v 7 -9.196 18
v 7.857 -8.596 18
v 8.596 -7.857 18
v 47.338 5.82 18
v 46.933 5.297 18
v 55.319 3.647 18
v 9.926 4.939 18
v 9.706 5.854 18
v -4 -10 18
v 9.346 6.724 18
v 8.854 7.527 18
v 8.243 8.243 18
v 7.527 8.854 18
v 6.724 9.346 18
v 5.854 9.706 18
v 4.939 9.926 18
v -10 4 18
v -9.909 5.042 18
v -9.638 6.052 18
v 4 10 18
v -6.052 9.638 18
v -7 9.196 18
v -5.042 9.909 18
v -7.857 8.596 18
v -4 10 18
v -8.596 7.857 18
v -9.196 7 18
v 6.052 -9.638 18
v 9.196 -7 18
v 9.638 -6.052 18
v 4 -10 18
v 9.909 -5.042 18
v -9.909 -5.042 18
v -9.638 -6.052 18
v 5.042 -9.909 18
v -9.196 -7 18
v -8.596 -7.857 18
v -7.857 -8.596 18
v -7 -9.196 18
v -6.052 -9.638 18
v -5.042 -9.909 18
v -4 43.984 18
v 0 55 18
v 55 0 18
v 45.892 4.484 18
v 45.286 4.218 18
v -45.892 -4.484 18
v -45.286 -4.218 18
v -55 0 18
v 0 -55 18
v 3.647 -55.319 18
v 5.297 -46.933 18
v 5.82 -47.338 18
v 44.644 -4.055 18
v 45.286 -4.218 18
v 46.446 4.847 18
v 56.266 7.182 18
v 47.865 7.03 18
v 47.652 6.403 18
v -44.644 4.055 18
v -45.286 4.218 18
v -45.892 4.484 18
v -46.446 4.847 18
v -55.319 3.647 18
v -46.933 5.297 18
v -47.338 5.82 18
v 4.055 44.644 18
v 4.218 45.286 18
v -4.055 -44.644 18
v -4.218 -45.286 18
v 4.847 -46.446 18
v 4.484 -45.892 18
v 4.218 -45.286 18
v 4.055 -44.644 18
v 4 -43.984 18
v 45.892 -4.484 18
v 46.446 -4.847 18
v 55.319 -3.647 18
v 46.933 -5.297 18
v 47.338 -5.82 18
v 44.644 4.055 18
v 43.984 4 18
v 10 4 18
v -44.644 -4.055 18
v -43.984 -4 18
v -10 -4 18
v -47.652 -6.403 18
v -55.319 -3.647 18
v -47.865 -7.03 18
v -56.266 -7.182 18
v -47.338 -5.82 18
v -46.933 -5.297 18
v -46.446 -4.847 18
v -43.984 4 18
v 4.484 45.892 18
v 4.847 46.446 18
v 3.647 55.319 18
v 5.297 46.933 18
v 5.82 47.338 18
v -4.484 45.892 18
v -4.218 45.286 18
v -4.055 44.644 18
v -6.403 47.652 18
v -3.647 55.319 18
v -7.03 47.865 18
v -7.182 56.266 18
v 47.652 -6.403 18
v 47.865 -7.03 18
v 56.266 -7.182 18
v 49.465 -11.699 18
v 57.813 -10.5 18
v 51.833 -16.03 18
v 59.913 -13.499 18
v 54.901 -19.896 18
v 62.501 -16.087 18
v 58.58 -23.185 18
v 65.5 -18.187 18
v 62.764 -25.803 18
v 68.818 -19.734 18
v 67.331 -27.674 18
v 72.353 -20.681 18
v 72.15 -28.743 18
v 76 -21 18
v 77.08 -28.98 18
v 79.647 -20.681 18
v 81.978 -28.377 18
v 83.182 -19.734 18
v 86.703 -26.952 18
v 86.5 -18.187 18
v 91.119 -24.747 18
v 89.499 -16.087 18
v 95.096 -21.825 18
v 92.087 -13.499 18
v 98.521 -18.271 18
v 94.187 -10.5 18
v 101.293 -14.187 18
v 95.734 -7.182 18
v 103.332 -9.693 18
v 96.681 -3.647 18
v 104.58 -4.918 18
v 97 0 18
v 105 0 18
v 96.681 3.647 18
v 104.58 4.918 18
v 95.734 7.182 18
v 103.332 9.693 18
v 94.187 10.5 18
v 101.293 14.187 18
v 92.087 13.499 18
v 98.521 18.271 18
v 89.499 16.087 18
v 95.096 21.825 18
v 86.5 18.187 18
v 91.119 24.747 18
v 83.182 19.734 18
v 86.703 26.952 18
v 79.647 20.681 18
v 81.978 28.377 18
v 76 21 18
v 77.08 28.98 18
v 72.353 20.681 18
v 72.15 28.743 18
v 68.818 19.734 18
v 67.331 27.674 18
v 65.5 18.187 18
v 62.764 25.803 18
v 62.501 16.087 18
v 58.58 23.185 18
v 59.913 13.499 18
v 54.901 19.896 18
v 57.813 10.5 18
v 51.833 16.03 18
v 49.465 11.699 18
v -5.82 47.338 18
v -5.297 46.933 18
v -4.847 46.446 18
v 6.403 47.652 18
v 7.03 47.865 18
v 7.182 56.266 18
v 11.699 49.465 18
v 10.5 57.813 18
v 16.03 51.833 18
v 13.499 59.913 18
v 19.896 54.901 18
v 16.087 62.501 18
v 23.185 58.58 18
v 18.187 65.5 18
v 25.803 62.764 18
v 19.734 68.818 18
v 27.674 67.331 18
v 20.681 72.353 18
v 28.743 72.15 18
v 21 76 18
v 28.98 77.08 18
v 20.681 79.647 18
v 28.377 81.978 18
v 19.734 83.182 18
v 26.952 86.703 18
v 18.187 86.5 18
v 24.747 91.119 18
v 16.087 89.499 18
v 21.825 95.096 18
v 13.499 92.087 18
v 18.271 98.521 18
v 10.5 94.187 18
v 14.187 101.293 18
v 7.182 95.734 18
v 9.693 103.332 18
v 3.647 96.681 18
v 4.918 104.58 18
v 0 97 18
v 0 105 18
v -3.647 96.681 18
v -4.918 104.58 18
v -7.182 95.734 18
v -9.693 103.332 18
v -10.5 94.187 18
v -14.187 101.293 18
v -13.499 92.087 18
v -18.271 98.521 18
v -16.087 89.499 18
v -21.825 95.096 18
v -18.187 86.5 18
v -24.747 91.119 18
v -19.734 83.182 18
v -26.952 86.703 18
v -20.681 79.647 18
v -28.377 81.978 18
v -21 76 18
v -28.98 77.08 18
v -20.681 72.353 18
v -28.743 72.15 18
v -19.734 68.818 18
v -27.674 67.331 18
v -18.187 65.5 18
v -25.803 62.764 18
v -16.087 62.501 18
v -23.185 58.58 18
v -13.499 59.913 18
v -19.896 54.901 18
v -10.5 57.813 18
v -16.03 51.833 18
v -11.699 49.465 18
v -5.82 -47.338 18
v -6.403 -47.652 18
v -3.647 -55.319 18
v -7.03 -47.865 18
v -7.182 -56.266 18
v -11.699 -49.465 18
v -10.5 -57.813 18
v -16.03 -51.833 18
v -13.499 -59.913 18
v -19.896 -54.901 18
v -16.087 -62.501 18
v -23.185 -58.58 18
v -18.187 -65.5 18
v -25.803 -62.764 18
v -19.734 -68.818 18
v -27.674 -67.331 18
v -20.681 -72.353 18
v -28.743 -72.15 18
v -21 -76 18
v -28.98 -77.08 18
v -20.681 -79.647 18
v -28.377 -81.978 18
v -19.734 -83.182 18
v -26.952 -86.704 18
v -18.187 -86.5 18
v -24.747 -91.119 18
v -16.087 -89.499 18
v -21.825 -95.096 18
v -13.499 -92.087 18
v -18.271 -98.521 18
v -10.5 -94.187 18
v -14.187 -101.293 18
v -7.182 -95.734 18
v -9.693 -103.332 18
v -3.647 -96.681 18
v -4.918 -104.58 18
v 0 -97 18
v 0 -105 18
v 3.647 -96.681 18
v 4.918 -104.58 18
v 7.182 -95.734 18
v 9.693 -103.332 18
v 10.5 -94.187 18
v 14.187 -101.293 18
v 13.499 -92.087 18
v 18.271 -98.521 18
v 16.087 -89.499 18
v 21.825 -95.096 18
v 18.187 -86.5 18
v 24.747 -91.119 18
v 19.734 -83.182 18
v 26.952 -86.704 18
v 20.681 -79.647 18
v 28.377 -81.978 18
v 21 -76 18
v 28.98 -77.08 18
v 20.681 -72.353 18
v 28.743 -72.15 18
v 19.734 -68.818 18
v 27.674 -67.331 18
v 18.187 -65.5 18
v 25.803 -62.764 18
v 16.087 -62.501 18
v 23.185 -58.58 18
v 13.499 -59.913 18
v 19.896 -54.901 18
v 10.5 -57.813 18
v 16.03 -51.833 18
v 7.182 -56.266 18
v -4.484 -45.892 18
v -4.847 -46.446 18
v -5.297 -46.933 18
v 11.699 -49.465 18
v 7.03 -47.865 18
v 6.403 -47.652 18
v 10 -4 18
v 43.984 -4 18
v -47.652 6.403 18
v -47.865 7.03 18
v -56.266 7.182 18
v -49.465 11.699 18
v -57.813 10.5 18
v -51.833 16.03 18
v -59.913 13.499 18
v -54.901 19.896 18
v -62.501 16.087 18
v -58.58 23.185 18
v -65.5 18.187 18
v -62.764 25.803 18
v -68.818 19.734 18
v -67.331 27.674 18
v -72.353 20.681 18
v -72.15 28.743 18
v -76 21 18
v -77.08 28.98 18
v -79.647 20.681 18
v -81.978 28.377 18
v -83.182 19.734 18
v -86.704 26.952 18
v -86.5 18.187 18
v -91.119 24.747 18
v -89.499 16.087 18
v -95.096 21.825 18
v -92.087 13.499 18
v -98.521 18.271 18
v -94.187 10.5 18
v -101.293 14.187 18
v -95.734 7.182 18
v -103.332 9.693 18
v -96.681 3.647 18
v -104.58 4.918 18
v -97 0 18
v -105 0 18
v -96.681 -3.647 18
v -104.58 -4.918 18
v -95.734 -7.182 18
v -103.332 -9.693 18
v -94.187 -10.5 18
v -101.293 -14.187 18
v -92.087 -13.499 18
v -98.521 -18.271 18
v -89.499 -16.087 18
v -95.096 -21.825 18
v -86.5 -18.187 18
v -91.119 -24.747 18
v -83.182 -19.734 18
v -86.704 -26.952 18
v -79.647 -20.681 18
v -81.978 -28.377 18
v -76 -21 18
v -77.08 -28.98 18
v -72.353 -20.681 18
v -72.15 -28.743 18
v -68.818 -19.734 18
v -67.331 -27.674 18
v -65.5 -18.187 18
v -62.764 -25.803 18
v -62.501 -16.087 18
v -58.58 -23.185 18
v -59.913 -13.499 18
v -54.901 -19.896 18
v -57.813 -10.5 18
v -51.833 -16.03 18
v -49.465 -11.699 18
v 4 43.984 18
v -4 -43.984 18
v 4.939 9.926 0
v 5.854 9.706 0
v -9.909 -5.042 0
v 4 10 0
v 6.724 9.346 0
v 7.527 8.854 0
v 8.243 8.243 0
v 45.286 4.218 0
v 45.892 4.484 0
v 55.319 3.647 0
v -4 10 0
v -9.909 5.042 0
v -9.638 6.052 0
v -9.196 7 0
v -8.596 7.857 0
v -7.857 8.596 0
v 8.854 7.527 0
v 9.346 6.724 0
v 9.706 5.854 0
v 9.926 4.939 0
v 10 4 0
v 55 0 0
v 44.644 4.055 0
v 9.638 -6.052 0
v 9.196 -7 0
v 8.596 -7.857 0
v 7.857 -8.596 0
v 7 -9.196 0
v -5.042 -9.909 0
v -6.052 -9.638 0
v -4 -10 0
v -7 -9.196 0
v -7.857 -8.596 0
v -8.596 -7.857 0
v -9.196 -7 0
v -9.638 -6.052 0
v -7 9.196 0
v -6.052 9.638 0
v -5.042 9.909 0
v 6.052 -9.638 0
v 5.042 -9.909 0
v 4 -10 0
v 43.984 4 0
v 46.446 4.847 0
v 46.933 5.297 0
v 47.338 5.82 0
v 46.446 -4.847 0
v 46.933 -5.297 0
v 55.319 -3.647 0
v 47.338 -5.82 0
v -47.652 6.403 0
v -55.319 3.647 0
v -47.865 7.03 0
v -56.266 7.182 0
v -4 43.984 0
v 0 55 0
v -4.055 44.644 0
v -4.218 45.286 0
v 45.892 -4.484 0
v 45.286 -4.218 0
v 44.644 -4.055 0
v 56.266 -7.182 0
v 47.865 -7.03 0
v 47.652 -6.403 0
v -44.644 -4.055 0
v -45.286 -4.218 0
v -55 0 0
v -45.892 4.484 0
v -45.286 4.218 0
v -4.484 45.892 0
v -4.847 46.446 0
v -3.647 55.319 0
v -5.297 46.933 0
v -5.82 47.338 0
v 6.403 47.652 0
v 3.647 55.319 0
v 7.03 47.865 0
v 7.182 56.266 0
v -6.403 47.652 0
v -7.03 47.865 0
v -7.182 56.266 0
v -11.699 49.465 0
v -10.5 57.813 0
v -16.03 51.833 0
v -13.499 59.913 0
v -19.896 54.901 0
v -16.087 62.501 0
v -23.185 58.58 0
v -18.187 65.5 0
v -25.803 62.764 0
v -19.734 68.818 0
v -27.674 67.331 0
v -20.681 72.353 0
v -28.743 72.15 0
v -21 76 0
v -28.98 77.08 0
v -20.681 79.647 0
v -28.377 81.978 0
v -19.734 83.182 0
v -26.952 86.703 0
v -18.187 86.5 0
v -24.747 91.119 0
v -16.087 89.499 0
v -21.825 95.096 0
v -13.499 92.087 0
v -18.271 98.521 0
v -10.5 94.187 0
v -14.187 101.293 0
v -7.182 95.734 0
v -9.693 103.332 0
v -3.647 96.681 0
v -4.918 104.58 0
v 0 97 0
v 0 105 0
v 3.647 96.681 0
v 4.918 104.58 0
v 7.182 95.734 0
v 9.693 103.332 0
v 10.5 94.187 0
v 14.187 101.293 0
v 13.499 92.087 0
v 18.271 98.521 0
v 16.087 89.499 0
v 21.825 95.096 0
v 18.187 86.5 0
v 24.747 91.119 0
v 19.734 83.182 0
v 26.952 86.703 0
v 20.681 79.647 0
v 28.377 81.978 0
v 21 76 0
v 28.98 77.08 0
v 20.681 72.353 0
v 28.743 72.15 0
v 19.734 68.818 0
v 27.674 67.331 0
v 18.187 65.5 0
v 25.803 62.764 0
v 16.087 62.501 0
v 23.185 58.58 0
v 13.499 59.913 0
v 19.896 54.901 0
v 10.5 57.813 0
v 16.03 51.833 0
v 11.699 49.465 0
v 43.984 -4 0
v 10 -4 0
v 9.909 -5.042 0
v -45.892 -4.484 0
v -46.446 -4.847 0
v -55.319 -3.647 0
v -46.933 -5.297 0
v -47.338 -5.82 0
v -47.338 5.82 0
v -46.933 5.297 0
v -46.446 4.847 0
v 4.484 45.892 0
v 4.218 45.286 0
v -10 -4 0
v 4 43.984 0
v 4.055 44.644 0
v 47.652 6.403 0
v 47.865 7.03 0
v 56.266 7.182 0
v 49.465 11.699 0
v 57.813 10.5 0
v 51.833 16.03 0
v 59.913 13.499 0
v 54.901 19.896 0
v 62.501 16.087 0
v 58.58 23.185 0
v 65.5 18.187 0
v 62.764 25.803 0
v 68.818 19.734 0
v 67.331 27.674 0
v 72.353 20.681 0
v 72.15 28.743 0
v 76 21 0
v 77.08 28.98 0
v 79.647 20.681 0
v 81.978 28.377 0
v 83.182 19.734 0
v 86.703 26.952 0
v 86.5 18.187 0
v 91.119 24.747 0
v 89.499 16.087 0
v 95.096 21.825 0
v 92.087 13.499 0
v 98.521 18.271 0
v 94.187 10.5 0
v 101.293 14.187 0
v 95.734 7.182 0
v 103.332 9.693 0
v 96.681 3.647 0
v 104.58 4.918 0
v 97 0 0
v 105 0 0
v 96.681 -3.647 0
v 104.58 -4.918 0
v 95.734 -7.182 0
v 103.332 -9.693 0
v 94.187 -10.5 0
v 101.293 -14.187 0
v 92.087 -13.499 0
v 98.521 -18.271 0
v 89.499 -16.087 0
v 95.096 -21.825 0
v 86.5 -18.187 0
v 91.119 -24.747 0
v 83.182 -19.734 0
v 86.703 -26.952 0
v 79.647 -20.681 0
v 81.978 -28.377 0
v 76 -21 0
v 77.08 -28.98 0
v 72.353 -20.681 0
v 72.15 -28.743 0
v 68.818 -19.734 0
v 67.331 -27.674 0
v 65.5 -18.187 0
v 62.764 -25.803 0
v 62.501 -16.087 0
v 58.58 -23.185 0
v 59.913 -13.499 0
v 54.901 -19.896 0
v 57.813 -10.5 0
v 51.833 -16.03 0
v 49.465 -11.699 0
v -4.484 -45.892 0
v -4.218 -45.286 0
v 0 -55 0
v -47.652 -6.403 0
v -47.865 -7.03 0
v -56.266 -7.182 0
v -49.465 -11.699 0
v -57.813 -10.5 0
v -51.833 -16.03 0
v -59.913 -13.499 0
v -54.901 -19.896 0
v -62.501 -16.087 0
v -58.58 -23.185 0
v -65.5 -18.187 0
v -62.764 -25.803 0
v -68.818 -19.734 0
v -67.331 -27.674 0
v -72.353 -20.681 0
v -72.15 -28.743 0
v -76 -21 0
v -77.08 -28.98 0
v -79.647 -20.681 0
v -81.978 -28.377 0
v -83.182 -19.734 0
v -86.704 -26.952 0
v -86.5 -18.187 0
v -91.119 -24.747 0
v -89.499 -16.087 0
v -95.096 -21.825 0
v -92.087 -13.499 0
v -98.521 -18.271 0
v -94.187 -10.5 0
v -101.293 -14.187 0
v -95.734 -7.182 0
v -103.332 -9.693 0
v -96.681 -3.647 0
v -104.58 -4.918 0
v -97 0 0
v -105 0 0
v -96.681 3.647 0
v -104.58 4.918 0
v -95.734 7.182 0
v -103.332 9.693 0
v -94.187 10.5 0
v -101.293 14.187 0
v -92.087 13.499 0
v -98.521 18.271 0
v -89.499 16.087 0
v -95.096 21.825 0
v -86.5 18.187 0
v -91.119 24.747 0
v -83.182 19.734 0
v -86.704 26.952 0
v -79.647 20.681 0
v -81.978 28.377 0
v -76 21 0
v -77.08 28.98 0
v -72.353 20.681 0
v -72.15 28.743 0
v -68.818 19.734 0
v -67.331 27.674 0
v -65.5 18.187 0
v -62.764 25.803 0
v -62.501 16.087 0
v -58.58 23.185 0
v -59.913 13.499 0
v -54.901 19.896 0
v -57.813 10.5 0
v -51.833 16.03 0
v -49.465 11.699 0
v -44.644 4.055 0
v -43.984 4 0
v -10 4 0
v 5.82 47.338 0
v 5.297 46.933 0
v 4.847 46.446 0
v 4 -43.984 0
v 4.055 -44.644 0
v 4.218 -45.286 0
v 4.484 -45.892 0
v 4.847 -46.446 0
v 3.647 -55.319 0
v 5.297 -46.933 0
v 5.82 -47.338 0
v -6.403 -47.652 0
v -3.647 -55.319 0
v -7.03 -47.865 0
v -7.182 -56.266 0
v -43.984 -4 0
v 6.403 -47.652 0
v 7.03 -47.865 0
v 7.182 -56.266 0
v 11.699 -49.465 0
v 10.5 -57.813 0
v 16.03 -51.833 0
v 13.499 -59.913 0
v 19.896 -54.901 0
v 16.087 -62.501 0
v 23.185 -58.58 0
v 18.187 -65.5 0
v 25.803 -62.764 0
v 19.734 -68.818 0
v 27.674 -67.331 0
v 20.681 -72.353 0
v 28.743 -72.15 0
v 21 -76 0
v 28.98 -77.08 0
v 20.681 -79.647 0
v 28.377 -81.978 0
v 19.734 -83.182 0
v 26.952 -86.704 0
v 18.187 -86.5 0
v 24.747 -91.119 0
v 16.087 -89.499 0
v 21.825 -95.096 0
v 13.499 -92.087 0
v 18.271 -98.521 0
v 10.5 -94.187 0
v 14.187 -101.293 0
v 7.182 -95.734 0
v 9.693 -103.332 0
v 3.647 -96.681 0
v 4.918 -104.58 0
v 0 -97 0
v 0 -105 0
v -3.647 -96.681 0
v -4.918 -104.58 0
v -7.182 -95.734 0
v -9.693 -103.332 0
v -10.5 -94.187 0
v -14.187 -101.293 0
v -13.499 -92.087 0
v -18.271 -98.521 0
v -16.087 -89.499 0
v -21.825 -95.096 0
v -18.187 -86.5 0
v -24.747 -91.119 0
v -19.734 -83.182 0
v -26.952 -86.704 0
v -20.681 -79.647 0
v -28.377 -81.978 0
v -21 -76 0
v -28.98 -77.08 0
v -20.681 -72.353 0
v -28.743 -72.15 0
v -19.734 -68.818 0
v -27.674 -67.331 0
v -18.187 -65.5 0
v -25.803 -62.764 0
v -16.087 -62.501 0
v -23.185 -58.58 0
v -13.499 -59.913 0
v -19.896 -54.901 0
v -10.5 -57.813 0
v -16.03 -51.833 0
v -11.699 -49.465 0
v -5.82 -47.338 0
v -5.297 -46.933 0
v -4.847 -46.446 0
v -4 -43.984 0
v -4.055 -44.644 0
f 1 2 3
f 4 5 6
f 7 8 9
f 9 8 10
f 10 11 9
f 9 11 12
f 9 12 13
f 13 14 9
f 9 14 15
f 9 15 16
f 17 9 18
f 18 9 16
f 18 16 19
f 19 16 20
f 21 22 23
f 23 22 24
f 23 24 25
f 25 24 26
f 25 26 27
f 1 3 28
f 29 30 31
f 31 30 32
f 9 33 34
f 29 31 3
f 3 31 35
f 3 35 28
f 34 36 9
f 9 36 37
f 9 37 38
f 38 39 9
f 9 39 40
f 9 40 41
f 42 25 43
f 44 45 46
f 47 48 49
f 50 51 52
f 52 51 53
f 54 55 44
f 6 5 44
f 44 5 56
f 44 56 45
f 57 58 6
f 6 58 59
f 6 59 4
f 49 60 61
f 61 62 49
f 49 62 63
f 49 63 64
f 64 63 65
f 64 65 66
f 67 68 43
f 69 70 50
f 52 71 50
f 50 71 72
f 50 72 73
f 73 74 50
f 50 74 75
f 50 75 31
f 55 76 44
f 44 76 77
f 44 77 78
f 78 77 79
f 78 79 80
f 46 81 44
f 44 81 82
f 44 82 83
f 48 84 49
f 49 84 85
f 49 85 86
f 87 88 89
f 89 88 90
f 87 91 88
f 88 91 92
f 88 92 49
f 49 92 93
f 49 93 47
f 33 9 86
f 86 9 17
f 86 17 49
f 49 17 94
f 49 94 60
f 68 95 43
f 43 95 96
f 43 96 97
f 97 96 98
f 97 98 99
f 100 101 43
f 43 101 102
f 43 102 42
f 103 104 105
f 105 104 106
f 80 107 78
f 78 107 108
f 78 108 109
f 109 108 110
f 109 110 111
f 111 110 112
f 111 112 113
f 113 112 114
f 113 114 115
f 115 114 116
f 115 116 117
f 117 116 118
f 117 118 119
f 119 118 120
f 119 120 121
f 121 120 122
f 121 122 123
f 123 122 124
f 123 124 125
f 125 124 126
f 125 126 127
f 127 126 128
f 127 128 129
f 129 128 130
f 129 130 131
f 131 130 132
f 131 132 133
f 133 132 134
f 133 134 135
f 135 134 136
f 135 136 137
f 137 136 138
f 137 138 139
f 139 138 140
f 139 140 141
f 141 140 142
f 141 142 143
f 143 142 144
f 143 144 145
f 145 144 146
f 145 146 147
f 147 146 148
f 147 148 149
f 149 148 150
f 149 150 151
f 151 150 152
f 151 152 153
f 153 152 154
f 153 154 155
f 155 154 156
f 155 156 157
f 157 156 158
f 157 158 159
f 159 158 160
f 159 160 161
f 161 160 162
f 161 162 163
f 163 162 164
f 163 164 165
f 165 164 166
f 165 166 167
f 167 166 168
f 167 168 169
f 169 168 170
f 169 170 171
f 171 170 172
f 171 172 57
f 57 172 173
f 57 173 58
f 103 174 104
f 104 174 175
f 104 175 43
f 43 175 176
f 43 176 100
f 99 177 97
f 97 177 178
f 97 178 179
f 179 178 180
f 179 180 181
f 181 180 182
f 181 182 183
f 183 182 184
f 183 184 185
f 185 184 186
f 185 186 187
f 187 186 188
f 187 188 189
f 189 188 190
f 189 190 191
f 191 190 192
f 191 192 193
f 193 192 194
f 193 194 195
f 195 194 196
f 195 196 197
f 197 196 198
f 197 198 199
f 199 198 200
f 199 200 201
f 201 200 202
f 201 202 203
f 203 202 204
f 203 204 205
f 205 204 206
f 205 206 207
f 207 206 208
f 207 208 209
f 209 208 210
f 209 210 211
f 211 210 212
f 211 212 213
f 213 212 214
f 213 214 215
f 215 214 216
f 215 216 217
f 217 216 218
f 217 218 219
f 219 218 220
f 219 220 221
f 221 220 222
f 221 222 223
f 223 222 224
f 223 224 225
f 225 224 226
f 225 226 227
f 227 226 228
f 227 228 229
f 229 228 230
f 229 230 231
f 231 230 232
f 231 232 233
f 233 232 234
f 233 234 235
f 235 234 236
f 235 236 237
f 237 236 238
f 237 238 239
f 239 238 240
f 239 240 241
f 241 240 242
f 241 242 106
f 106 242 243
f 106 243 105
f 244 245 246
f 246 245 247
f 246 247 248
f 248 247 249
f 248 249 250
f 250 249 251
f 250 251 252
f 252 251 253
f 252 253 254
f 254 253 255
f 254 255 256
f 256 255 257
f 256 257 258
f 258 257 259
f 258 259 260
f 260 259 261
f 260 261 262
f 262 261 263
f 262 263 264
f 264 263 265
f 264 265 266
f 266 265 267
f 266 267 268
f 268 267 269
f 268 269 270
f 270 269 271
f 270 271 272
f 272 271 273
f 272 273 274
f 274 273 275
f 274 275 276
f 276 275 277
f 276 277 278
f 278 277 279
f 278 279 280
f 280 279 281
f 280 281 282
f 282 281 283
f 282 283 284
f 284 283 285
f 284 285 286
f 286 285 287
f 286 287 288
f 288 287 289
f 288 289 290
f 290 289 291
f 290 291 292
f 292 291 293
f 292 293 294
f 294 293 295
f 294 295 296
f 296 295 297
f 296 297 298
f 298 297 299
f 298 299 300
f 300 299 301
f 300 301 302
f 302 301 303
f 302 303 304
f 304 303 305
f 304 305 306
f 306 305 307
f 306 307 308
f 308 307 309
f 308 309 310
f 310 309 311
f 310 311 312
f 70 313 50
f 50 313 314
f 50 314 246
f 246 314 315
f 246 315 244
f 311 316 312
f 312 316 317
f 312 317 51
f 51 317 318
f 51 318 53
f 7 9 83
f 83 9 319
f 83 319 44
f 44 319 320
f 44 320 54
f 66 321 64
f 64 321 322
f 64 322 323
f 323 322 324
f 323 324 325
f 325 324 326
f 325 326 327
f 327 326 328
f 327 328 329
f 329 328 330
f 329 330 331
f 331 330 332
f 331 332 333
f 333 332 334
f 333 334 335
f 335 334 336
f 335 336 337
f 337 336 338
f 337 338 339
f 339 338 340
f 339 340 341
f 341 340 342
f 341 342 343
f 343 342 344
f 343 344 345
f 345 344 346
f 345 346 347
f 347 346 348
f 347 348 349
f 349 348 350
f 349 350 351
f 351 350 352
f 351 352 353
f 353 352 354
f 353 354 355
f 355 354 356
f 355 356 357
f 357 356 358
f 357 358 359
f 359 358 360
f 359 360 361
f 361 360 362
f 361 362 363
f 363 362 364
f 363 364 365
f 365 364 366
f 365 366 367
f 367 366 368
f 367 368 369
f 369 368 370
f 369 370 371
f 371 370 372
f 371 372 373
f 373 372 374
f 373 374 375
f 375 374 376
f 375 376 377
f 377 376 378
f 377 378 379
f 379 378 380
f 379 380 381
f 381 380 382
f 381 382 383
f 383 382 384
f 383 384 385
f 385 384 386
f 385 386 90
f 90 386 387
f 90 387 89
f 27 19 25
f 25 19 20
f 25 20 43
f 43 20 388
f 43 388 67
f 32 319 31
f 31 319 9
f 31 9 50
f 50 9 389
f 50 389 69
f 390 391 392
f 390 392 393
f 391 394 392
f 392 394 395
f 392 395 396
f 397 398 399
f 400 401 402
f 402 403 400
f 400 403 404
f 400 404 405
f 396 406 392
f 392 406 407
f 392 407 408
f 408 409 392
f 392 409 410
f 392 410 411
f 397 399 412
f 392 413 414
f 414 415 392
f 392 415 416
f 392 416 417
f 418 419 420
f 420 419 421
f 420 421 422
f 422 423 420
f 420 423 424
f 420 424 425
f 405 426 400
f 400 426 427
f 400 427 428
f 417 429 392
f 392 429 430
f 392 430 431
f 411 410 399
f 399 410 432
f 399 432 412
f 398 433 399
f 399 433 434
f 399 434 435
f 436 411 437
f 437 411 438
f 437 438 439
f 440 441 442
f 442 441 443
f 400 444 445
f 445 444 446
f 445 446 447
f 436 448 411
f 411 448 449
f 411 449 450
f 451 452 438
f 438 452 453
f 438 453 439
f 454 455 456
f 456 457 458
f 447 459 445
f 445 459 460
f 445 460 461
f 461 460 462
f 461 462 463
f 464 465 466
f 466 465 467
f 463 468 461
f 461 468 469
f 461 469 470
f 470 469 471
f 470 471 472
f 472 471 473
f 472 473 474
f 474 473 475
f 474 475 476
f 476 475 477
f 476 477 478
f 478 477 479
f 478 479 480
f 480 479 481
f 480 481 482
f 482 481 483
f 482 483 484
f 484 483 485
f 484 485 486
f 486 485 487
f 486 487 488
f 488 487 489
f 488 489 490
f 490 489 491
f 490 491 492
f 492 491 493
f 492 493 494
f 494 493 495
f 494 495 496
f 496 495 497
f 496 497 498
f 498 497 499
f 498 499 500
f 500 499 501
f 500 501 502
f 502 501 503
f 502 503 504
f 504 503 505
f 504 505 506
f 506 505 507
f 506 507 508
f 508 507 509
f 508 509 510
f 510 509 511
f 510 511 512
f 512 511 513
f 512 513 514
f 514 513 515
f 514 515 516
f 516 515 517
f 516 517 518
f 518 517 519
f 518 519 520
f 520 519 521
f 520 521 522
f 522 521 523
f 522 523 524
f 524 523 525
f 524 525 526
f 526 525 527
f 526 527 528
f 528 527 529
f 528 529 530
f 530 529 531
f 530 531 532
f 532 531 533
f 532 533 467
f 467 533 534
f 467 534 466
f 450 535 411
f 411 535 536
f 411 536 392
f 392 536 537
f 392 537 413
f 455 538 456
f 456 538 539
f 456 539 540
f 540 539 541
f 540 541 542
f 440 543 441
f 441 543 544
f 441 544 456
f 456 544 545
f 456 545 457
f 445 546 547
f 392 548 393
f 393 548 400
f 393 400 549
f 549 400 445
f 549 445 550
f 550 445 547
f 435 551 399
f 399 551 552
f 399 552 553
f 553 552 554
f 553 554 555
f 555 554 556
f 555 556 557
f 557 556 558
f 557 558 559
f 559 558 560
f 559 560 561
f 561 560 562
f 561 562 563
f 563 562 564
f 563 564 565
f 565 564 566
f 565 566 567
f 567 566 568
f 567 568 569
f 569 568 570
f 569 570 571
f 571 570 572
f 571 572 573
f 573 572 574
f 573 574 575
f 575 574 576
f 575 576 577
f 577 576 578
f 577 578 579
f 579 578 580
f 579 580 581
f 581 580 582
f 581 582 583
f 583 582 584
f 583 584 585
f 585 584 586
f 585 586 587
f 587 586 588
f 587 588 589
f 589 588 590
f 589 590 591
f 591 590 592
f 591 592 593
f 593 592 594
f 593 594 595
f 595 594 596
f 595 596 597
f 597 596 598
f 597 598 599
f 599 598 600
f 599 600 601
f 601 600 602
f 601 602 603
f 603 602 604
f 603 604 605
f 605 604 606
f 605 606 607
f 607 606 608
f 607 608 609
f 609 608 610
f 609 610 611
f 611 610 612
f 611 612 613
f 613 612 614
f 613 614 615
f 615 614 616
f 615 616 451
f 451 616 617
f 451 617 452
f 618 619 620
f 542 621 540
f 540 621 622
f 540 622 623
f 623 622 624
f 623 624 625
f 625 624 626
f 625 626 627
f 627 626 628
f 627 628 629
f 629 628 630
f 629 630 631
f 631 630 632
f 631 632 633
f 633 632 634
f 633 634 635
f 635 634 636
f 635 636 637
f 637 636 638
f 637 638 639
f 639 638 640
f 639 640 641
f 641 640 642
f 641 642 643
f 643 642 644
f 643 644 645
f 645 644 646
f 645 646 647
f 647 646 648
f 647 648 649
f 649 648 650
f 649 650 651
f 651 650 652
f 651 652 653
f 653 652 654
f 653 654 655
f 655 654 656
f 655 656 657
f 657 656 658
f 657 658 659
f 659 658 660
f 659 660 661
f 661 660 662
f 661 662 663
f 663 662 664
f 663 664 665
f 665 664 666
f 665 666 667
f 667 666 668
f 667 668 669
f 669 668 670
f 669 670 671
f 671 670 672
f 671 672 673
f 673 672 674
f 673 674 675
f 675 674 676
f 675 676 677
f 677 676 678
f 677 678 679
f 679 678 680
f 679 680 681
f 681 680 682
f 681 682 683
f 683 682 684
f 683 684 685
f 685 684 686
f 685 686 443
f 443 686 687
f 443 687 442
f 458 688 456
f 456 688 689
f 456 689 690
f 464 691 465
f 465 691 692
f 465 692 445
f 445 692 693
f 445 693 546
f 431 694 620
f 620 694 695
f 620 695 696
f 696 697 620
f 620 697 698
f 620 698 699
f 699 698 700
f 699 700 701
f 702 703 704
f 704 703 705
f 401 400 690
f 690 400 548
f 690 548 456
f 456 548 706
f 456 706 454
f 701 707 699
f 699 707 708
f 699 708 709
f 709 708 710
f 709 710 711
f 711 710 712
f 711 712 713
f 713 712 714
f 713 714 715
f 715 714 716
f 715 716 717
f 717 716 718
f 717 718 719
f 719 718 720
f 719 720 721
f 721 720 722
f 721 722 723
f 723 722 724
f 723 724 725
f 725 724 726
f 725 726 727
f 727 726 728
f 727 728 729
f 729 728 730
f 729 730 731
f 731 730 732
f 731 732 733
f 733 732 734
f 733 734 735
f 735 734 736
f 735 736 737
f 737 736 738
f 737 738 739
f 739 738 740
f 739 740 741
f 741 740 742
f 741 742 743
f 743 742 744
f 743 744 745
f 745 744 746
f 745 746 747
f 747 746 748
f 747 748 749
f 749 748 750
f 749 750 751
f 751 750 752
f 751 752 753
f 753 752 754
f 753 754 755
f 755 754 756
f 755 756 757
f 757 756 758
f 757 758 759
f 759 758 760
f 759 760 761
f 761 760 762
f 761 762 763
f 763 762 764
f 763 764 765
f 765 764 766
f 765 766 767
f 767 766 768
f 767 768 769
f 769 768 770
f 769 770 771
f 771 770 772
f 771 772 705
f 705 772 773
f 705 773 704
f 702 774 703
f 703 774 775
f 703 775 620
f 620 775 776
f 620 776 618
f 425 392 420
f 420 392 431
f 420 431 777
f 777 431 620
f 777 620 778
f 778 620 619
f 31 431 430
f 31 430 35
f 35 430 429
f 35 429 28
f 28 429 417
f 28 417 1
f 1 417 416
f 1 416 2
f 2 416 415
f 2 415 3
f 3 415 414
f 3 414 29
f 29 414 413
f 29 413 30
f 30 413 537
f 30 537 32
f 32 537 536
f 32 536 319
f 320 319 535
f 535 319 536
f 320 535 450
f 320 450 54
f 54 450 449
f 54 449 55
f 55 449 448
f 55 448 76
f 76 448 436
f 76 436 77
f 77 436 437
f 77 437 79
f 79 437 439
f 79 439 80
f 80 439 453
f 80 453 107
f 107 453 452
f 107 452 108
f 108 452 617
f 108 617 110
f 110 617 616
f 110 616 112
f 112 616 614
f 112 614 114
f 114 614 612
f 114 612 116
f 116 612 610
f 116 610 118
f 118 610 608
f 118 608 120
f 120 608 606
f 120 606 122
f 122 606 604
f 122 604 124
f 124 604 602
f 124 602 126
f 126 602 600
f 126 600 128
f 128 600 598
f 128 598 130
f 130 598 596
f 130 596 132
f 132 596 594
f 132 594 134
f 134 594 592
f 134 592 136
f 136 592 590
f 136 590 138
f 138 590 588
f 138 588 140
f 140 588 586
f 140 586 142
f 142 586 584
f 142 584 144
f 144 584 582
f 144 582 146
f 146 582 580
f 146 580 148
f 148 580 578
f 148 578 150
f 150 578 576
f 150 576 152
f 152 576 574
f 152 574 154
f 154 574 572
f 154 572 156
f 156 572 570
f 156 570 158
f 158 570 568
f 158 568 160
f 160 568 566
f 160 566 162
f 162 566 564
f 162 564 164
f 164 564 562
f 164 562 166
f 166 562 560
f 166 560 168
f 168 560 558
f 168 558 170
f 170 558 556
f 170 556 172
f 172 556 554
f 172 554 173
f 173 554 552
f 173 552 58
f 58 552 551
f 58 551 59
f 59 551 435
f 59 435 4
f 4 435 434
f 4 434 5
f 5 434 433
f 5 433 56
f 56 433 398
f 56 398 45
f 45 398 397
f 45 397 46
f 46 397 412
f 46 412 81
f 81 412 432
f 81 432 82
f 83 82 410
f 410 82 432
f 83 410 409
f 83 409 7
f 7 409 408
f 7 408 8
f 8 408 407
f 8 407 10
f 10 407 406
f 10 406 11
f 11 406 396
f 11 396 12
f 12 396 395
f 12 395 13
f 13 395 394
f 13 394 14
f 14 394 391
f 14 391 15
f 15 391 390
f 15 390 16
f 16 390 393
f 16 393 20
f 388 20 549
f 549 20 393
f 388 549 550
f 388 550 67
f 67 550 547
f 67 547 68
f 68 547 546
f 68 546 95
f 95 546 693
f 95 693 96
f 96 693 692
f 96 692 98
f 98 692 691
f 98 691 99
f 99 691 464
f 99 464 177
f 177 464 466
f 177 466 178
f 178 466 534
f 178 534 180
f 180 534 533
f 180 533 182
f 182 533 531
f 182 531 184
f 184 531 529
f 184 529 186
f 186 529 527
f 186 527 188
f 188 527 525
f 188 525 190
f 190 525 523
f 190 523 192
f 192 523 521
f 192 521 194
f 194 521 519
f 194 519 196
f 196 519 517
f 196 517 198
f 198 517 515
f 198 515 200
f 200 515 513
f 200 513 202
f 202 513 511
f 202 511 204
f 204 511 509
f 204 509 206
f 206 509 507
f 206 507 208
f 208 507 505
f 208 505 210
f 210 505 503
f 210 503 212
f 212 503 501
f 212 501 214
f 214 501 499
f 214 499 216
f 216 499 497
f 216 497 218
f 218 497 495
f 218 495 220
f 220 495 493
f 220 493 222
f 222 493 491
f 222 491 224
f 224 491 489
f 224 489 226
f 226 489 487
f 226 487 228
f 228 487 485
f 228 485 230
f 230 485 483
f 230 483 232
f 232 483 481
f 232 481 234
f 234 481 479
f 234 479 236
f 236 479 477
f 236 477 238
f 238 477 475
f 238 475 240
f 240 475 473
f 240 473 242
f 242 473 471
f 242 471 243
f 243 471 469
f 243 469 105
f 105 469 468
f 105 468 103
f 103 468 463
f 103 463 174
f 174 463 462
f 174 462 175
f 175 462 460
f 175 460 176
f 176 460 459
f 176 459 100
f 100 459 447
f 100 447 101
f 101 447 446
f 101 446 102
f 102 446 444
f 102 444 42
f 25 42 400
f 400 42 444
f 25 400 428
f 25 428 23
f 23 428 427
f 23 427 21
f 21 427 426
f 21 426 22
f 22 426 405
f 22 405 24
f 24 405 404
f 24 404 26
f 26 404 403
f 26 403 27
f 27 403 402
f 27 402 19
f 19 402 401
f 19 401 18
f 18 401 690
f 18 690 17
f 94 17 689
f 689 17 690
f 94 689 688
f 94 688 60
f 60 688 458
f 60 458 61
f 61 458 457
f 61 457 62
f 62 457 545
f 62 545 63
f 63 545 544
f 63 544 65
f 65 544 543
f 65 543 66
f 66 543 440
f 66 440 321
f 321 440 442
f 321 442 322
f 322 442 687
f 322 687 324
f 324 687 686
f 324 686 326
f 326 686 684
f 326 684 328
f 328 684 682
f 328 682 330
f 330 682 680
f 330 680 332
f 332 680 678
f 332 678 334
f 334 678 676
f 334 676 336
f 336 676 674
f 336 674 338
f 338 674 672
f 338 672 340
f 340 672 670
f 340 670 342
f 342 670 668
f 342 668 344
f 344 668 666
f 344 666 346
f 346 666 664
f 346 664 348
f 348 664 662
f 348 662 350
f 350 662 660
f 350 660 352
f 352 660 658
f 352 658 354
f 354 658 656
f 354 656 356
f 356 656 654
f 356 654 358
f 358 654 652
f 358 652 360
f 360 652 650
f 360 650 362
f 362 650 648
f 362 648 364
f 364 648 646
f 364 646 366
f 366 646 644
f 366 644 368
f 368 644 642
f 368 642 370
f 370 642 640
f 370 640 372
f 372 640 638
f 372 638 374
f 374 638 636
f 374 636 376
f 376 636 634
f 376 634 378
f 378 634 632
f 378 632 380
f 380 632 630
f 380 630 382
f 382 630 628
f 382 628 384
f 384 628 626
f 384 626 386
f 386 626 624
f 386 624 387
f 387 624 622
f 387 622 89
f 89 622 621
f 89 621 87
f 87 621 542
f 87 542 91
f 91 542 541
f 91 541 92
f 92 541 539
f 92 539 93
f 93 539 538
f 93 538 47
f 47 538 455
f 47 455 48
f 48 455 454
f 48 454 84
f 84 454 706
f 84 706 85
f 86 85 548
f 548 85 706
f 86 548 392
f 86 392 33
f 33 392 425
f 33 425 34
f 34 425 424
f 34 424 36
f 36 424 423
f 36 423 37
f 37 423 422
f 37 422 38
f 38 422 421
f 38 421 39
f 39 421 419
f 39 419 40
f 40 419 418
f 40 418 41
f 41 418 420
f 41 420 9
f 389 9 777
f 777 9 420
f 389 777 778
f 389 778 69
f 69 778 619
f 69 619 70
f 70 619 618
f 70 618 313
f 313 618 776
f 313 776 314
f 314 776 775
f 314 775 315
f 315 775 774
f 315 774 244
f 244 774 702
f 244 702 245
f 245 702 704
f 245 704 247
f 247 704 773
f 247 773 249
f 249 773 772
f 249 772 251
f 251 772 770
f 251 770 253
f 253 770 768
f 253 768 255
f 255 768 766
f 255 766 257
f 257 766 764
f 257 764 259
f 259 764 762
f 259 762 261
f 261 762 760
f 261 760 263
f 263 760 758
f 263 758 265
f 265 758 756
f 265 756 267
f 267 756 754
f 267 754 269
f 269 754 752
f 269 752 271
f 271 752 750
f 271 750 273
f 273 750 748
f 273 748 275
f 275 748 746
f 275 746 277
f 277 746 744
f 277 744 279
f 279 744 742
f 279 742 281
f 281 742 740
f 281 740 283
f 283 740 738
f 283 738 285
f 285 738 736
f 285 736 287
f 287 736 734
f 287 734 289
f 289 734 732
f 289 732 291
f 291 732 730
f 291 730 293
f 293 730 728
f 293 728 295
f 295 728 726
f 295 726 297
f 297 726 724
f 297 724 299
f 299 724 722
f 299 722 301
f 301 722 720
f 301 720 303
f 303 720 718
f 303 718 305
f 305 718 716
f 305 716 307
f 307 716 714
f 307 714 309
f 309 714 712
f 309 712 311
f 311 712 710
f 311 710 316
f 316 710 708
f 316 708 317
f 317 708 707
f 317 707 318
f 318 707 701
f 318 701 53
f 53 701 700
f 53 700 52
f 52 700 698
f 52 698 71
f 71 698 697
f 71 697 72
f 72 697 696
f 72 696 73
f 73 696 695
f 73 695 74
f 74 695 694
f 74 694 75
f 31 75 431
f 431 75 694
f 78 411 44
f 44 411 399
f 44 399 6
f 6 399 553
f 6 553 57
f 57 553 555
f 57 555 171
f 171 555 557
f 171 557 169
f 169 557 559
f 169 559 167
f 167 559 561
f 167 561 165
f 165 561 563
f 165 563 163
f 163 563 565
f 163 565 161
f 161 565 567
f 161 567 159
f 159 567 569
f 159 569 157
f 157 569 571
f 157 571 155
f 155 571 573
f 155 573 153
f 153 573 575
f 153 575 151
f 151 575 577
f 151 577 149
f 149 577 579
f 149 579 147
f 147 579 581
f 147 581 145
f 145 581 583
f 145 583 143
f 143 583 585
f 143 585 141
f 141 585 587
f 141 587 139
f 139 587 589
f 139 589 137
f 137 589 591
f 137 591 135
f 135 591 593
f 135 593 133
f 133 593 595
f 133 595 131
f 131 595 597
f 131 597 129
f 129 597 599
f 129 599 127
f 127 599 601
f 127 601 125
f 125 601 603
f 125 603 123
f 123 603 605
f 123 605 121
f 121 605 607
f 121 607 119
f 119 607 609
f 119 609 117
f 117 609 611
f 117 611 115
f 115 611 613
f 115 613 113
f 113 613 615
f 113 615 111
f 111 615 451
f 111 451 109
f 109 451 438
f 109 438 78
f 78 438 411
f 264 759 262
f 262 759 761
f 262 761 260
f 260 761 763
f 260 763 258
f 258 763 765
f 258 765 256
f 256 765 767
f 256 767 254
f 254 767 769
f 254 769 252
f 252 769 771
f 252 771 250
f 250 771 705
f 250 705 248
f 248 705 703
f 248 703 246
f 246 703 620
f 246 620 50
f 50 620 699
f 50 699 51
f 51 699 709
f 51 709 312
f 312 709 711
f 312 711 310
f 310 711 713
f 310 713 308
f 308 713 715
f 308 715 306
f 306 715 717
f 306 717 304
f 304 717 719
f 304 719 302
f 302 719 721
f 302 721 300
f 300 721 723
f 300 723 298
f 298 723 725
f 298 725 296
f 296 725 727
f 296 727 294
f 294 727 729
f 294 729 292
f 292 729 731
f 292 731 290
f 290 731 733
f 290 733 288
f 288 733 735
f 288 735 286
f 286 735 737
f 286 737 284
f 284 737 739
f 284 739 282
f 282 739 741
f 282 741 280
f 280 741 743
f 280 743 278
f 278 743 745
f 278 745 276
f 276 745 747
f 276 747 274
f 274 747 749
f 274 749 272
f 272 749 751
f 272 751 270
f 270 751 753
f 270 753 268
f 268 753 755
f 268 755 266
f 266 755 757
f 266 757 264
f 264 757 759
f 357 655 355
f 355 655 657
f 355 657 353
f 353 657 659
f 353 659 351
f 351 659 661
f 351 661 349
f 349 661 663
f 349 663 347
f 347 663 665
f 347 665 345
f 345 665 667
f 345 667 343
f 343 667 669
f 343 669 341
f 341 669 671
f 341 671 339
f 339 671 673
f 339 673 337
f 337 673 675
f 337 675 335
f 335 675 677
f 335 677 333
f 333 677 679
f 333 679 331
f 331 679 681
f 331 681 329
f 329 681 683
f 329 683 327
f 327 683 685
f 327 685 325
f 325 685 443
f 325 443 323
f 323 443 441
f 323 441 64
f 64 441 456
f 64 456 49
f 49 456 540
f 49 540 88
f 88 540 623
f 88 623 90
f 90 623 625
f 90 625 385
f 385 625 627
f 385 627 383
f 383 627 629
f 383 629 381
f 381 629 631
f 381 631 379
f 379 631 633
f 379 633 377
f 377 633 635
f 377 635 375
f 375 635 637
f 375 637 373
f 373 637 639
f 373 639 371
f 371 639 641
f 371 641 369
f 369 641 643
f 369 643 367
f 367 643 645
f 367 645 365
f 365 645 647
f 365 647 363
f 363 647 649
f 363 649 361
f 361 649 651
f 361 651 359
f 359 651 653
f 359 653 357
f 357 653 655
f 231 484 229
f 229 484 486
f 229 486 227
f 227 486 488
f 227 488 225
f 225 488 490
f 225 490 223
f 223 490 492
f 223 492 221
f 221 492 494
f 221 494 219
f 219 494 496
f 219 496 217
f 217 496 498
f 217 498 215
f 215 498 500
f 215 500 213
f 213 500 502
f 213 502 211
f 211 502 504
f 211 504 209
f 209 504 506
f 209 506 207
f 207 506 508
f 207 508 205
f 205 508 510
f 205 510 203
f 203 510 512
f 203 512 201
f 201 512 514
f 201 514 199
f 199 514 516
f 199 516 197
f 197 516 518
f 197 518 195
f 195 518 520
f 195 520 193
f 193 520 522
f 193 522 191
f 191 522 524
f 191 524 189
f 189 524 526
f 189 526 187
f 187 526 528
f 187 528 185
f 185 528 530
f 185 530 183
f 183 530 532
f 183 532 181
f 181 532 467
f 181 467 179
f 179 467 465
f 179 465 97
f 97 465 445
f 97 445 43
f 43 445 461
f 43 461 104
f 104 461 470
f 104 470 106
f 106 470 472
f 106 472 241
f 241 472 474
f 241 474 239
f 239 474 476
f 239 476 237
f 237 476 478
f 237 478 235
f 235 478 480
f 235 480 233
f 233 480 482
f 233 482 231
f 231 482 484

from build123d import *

# Parameters (mm, degrees)
SKETCH2_R           = 21
BOSS_EXTRUDE1_DEPTH = 18


with BuildPart() as part:
    # Sketch2 → Boss-Extrude1 (new body)
    with BuildSketch(Plane.XY):
        with BuildLine():
            Line((10, 4), (43.984378813, 4))
            ThreePointArc((43.984378813, 4), (46.446208632, 4.847319563), (47.865060169, 7.03030303))
            ThreePointArc((47.865060169, 7.03030303), (105, 0), (47.865060169, -7.03030303))
            ThreePointArc((47.865060169, -7.03030303), (46.446208632, -4.847319563), (43.984378813, -4))
            Line((43.984378813, -4), (10, -4))
            ThreePointArc((10, -4), (8.242640687, -8.242640687), (4, -10))
            Line((4, -10), (4, -43.984378813))
            ThreePointArc((4, -43.984378813), (4.847319563, -46.446208632), (7.03030303, -47.865060169))
            ThreePointArc((7.03030303, -47.865060169), (0, -105), (-7.03030303, -47.865060169))
            ThreePointArc((-7.03030303, -47.865060169), (-4.847319563, -46.446208632), (-4, -43.984378813))
            Line((-4, -43.984378813), (-4, -10))
            ThreePointArc((-4, -10), (-8.242640687, -8.242640687), (-10, -4))
            Line((-10, -4), (-43.984378813, -4))
            ThreePointArc((-43.984378813, -4), (-46.446208632, -4.847319563), (-47.865060169, -7.03030303))
            ThreePointArc((-47.865060169, -7.03030303), (-105, 0), (-47.865060169, 7.03030303))
            ThreePointArc((-47.865060169, 7.03030303), (-46.446208632, 4.847319563), (-43.984378813, 4))
            Line((-43.984378813, 4), (-10, 4))
            ThreePointArc((-10, 4), (-8.242640687, 8.242640687), (-4, 10))
            Line((-4, 10), (-4, 43.984378813))
            ThreePointArc((-4, 43.984378813), (-4.847319563, 46.446208632), (-7.03030303, 47.865060169))
            ThreePointArc((-7.03030303, 47.865060169), (0, 105), (7.03030303, 47.865060169))
            ThreePointArc((7.03030303, 47.865060169), (4.847319563, 46.446208632), (4, 43.984378813))
            Line((4, 43.984378813), (4, 10))
            ThreePointArc((4, 10), (8.242640687, 8.242640687), (10, 4))
        make_face()
        with Locations((76, 0)):
            Circle(SKETCH2_R, mode=Mode.SUBTRACT)
        with Locations((0, -76)):
            Circle(SKETCH2_R, mode=Mode.SUBTRACT)
        with Locations((-76, 0)):
            Circle(SKETCH2_R, mode=Mode.SUBTRACT)
        with Locations((0, 76)):
            Circle(SKETCH2_R, mode=Mode.SUBTRACT)
    extrude(amount=BOSS_EXTRUDE1_DEPTH)


solid = part.part
